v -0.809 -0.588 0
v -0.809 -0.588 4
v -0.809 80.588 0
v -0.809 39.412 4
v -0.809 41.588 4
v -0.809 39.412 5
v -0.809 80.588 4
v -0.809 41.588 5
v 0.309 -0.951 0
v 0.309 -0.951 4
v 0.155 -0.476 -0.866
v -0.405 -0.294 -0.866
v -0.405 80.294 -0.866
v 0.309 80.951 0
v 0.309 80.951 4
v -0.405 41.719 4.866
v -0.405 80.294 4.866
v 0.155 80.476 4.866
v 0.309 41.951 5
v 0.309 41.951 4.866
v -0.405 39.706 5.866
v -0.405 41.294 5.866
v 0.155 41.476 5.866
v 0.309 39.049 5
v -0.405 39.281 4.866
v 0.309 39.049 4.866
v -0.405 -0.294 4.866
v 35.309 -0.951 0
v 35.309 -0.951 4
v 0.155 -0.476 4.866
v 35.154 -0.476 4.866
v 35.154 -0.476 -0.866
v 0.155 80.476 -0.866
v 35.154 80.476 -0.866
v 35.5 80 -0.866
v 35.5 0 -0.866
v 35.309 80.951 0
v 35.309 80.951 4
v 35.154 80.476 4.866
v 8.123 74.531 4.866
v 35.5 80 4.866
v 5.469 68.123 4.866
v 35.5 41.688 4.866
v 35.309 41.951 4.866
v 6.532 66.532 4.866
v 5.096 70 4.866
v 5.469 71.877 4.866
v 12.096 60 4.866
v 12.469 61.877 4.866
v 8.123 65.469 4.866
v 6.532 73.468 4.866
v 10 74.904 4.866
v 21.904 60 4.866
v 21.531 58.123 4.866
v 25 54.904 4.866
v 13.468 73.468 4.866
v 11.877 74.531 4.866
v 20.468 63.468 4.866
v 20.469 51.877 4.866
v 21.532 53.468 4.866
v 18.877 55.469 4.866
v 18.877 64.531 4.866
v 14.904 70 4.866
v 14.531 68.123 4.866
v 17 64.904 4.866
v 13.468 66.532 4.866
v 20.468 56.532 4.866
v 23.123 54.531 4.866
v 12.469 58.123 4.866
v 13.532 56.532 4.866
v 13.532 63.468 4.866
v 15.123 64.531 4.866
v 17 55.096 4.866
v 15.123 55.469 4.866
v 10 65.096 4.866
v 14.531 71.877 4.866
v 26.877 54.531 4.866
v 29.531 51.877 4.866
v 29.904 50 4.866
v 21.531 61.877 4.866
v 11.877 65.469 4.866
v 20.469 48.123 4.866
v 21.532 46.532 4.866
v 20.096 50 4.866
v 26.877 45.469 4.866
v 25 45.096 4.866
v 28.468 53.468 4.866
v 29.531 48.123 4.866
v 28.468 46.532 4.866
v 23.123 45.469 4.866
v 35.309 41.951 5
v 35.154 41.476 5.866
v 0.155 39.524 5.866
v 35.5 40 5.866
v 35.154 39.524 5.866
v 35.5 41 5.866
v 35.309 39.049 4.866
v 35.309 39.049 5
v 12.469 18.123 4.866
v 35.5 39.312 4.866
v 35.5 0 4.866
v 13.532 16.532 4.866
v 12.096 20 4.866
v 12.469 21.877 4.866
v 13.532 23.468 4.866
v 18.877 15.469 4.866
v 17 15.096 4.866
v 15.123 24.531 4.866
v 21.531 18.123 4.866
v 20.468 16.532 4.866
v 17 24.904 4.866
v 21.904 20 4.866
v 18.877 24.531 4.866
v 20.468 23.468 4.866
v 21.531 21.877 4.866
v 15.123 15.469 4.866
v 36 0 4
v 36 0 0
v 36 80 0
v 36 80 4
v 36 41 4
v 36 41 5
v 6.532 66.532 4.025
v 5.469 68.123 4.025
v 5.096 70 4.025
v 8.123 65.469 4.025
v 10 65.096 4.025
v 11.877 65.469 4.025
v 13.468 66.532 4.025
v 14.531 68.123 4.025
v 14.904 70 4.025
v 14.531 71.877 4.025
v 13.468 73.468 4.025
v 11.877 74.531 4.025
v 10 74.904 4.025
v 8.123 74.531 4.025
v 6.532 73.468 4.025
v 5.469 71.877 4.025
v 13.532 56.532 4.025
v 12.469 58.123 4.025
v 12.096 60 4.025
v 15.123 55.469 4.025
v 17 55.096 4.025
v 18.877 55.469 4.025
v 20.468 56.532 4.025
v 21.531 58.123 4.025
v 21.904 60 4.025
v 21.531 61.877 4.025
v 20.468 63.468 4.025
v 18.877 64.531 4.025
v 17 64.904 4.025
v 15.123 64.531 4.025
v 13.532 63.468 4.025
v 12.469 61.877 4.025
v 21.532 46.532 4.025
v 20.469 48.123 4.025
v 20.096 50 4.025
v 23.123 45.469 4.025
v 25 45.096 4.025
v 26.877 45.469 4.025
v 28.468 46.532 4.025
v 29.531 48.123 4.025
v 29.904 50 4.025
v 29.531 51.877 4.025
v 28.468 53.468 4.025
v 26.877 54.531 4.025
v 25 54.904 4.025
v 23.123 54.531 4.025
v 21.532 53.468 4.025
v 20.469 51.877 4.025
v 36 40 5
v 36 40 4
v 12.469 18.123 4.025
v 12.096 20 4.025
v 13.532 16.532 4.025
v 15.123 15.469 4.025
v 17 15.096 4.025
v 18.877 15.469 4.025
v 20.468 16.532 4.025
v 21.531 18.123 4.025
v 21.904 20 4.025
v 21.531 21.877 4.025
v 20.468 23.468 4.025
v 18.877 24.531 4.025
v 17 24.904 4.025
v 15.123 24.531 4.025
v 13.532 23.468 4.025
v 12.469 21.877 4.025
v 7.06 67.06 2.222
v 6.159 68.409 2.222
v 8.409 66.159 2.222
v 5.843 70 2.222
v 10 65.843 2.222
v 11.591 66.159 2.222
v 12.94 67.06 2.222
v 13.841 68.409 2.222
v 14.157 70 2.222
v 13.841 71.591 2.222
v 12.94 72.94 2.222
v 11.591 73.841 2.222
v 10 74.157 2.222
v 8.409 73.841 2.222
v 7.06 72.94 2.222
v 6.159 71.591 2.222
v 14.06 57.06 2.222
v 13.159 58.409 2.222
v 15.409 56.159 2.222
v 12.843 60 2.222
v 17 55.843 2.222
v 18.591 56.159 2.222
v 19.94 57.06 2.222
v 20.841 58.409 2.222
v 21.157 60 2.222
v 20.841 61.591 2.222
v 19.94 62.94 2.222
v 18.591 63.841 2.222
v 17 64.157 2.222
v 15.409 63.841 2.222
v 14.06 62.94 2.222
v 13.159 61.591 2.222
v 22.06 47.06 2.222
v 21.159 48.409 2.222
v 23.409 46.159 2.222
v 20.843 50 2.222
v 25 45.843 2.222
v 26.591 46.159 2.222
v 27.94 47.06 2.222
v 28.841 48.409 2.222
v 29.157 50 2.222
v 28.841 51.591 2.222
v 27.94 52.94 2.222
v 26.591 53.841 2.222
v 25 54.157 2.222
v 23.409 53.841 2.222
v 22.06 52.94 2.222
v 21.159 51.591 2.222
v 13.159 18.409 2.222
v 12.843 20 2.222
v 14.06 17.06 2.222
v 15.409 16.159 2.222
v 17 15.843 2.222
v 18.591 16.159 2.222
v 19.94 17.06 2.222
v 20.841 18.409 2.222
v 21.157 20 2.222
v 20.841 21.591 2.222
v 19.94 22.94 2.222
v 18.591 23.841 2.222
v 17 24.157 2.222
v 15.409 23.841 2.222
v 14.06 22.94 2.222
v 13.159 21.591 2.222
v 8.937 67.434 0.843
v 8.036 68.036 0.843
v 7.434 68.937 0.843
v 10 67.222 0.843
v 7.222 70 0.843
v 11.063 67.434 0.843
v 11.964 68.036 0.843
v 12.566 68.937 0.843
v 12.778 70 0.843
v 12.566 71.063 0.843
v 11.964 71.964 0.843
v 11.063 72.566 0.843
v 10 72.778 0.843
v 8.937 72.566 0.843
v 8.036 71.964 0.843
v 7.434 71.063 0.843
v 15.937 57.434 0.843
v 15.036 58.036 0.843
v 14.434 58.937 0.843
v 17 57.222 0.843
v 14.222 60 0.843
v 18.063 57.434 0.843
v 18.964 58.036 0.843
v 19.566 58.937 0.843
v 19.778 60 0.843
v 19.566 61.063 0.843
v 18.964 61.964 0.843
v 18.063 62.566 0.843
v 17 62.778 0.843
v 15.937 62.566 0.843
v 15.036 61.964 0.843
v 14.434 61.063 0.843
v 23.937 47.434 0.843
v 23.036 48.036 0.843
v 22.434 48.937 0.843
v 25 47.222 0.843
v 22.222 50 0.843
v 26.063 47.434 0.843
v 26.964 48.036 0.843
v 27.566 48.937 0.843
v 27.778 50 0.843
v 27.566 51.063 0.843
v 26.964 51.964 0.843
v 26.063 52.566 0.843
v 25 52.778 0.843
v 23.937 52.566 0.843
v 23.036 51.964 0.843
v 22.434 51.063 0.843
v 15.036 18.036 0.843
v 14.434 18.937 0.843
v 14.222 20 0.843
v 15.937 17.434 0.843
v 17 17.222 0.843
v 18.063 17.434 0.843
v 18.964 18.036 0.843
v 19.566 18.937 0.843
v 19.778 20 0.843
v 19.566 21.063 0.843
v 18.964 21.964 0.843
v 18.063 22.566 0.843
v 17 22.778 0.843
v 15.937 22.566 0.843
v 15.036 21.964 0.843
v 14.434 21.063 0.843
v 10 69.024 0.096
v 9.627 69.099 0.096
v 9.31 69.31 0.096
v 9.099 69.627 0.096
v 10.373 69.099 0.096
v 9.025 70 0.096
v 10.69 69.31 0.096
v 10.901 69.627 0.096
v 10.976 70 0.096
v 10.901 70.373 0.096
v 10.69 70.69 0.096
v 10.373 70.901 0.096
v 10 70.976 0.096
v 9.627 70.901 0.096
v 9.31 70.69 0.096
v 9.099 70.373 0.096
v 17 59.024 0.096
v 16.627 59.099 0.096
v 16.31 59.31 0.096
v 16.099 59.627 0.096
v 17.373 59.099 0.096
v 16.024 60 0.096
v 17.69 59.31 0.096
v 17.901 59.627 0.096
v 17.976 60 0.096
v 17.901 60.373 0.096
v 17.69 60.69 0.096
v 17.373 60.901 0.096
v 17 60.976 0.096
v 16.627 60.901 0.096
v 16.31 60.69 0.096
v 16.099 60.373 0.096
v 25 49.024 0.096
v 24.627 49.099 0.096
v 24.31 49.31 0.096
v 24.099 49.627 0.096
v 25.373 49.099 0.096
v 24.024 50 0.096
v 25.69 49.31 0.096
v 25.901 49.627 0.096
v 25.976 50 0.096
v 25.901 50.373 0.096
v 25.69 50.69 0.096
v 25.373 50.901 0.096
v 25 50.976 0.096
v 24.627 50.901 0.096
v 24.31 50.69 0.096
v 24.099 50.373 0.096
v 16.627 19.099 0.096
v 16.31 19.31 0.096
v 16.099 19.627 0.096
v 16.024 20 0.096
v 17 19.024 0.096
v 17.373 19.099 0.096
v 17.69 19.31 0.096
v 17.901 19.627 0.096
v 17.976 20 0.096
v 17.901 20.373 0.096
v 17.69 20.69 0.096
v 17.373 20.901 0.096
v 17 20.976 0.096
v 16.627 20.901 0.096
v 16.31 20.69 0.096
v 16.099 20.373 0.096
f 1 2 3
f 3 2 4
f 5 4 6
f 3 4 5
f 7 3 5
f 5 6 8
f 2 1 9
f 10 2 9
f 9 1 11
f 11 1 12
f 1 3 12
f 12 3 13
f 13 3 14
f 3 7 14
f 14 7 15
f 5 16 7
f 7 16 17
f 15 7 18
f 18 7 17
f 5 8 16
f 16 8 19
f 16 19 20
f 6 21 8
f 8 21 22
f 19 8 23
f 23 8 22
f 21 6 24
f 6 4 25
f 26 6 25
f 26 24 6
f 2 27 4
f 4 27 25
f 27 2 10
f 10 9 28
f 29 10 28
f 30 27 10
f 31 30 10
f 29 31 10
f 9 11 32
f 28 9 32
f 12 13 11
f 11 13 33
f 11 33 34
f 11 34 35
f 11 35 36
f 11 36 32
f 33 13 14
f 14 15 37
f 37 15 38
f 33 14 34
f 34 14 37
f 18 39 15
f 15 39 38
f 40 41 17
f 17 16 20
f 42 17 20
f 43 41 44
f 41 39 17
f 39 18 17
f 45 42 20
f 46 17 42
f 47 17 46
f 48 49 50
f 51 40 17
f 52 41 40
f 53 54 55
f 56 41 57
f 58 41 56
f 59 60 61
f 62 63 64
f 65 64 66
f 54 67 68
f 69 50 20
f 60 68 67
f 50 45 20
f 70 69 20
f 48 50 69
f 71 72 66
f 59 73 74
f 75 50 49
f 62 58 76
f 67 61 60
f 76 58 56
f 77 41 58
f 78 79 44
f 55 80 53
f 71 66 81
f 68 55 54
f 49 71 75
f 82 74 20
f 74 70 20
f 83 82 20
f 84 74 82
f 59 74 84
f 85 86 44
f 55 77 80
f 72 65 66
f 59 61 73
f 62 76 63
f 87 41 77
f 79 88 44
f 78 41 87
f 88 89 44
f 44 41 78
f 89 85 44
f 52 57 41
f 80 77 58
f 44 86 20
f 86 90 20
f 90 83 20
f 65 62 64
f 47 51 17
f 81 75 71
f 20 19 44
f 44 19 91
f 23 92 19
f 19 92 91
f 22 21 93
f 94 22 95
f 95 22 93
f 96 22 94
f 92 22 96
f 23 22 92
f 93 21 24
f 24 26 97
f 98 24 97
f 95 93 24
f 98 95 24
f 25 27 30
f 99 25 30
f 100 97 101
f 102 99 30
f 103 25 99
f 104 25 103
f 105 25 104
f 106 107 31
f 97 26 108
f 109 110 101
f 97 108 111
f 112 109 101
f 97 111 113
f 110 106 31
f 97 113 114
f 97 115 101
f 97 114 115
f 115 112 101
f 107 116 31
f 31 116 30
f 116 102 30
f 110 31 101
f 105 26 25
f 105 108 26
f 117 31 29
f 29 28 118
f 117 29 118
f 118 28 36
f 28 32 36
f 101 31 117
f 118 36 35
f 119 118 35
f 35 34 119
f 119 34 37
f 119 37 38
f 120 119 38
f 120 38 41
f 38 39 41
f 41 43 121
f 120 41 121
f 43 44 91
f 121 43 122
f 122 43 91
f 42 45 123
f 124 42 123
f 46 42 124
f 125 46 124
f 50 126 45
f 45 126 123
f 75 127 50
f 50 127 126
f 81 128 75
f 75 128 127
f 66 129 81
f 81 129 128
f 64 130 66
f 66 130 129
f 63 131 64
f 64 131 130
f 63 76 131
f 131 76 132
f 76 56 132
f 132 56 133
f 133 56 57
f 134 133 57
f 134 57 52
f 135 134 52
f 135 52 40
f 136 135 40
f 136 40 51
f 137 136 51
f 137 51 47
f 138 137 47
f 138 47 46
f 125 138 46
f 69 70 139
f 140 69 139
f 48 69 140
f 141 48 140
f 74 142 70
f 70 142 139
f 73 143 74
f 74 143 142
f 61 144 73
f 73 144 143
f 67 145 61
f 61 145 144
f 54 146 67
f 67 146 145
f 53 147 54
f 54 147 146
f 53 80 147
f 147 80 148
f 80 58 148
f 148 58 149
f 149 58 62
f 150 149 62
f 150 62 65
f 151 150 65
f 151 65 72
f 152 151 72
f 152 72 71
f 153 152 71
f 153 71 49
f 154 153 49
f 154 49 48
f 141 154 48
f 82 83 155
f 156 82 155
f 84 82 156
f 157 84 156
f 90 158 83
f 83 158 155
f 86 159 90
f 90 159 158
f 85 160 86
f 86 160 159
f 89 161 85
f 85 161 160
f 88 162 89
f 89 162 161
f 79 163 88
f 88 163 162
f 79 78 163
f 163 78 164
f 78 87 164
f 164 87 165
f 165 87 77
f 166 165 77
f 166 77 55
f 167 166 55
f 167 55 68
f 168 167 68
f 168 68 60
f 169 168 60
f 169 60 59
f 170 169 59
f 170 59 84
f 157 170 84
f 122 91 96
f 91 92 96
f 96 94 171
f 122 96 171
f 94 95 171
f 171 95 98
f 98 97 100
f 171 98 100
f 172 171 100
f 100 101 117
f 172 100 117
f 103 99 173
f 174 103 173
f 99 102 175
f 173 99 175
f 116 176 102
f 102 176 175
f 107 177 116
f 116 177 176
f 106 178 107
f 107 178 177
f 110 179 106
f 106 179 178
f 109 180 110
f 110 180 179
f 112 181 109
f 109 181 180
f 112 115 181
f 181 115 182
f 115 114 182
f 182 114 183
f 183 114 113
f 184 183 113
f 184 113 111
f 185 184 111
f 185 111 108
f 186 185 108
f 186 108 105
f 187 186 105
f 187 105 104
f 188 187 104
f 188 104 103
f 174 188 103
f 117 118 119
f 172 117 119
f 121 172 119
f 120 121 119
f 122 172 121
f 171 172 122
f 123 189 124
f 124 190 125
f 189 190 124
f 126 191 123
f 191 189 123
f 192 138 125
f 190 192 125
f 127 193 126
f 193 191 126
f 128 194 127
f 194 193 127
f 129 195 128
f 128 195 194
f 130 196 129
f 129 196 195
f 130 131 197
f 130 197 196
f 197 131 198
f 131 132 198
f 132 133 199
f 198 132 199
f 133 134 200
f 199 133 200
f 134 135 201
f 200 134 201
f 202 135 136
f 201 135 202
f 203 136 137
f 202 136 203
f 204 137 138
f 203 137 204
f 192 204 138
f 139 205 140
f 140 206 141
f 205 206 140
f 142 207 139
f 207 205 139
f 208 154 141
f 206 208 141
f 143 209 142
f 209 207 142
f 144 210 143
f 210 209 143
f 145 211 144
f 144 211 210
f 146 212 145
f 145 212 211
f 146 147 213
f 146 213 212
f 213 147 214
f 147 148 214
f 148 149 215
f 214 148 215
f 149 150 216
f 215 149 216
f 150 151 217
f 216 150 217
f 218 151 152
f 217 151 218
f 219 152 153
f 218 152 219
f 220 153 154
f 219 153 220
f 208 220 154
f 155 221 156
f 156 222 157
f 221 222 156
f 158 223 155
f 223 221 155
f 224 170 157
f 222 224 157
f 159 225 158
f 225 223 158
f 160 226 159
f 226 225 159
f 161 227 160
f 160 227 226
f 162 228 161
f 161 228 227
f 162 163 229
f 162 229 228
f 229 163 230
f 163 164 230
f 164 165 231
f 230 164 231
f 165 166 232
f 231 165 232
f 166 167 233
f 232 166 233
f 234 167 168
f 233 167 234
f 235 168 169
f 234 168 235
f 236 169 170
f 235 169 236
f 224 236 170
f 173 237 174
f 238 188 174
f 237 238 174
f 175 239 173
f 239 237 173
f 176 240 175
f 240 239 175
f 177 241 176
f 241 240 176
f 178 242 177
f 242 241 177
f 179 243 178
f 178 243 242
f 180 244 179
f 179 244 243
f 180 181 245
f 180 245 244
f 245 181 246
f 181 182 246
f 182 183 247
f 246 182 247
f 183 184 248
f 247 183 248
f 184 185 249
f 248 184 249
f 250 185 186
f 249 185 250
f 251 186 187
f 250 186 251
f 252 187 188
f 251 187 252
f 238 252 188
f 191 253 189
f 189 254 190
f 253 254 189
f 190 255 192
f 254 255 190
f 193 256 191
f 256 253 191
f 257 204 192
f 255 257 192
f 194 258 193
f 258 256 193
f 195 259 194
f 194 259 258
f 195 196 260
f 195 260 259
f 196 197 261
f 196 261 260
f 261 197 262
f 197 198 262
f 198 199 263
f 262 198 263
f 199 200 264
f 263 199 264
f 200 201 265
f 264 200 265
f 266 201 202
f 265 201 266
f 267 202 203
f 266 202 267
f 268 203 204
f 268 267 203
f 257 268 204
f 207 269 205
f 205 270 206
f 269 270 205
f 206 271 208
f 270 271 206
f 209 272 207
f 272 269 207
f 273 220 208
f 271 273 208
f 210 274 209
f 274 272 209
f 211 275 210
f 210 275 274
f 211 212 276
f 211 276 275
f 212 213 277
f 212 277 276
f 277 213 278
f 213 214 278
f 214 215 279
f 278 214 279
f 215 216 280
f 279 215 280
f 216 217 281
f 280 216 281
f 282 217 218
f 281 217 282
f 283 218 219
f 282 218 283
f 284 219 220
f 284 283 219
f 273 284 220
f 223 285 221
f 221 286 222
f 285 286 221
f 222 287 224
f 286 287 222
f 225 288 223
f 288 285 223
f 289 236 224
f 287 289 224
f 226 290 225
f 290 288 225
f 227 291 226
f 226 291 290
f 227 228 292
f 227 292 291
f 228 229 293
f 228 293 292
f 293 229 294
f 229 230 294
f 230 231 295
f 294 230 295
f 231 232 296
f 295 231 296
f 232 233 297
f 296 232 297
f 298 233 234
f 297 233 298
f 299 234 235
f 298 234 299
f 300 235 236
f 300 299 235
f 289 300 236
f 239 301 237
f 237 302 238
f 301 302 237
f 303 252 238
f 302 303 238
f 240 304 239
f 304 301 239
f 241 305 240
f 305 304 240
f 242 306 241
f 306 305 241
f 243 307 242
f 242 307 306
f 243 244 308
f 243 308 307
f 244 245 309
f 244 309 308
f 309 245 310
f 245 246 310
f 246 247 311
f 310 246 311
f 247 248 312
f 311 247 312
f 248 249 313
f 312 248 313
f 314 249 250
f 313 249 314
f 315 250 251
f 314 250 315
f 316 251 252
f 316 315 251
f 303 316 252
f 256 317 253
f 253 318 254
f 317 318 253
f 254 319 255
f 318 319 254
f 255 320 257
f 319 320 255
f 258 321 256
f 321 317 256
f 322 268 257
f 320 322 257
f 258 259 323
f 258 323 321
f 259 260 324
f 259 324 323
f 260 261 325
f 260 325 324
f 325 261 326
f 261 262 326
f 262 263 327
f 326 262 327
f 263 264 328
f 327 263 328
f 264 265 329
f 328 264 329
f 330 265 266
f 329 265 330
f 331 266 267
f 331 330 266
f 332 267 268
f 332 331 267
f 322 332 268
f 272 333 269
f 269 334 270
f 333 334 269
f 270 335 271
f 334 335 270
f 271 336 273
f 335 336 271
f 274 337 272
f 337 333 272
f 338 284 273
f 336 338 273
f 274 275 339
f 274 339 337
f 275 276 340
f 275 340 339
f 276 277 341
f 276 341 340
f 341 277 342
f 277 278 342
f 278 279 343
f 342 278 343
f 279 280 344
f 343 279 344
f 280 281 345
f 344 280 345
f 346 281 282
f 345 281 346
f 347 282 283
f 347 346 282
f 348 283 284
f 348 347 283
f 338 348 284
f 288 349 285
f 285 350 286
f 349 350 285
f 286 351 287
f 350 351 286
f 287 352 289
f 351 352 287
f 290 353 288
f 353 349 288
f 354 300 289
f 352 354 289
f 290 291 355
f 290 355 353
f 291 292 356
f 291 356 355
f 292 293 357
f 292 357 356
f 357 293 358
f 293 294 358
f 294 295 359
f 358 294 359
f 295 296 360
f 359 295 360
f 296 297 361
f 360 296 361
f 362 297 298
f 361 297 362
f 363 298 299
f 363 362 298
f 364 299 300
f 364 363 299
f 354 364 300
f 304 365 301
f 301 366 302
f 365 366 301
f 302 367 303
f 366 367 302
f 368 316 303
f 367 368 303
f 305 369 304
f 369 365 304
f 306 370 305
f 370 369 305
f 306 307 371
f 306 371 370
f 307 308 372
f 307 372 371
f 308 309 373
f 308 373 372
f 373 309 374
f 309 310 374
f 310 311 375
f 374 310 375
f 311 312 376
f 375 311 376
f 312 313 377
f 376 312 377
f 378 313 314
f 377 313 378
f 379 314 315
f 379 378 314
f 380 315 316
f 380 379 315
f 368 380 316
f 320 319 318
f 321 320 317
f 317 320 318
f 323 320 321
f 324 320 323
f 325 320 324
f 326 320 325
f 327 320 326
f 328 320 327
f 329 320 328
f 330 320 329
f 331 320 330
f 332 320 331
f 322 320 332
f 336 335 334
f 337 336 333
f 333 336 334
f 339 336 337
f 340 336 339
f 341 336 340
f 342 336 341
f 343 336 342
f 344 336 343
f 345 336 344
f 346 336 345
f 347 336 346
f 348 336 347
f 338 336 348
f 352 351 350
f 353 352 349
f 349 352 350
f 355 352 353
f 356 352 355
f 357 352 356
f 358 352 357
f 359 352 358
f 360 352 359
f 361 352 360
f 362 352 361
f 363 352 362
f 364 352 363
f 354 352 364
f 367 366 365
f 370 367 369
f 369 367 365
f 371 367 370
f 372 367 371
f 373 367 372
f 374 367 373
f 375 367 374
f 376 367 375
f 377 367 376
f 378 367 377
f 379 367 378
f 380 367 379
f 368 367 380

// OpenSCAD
// Loguncov Maxim 13.12.13


//$fn=128;


translate([0,40,0])
minkowski()
{cube([35,1,5]);
sphere(1);
}

difference() {

//основа
minkowski()
{cube([35,80,4]);
sphere(1);
}

//отверстия
translate([17,20,5])sphere(5);

translate([10,70,5])sphere(5);
translate([25,50,5])sphere(5);
translate([17,60,5])sphere(5);



}
